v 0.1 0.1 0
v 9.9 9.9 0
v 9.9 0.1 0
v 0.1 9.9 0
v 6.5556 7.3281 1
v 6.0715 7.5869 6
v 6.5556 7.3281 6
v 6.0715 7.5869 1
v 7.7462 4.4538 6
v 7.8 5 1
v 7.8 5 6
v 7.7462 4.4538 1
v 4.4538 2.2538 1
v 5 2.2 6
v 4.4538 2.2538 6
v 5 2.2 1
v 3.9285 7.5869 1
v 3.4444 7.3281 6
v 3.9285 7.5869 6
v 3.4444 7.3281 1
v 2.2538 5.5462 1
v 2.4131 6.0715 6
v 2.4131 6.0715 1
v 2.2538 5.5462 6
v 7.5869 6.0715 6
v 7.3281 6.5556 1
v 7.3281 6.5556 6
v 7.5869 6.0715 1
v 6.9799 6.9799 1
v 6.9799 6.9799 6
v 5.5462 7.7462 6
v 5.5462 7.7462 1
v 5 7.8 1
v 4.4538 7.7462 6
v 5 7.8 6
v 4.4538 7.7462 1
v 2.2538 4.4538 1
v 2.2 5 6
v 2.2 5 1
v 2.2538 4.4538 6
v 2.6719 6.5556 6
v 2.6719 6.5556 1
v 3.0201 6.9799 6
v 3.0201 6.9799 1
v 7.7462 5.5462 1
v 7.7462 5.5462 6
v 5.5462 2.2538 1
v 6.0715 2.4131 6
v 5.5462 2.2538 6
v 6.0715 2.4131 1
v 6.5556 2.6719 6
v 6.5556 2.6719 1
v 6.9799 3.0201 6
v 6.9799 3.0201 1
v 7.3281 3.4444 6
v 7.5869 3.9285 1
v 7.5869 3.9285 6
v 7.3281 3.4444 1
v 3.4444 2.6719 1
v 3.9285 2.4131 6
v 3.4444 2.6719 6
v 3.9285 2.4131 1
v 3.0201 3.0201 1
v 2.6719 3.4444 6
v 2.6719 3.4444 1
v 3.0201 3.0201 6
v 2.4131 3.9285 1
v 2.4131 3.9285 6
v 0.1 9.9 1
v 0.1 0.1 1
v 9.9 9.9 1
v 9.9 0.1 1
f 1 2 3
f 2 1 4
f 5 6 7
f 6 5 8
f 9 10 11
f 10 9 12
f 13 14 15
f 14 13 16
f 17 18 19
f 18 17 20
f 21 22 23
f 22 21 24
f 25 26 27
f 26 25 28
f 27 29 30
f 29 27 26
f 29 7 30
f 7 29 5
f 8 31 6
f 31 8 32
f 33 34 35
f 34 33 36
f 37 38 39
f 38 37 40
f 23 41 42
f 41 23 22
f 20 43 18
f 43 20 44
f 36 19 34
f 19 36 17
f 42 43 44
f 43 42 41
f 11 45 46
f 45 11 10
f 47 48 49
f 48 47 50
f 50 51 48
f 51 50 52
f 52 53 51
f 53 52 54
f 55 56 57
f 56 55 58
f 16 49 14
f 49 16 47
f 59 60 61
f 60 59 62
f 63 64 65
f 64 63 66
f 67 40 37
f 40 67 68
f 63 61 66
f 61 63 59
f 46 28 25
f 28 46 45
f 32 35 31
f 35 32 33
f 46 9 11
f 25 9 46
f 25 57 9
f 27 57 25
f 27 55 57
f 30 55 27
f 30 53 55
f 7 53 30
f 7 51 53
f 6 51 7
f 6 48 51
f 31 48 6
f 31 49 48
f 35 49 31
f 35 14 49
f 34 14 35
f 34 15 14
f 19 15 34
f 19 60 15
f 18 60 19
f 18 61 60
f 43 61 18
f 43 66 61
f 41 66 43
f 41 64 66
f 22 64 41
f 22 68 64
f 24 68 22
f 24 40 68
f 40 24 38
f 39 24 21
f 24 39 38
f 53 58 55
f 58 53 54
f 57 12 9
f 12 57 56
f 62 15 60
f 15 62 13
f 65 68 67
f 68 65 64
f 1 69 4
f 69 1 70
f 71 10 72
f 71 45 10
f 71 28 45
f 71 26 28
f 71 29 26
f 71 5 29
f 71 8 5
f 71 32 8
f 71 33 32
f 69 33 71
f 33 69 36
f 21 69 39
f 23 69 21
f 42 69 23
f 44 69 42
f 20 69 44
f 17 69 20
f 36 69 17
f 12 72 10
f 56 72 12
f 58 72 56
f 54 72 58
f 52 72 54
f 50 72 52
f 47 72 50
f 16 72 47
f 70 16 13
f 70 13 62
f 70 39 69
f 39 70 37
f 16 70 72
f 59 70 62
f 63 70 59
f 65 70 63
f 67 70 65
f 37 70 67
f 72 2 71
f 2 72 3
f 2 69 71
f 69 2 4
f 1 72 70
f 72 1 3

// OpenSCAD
$fn=32;

//[[131.5,11,1], [10, 10, 20]],
//[[137,16,-2],[0,3,19]],      // reset switch

translate([5,5,0])
cylinder(r=2.8, h=6);

translate([0.1,0.1,0])
cube([9.8, 9.8, 1]);
